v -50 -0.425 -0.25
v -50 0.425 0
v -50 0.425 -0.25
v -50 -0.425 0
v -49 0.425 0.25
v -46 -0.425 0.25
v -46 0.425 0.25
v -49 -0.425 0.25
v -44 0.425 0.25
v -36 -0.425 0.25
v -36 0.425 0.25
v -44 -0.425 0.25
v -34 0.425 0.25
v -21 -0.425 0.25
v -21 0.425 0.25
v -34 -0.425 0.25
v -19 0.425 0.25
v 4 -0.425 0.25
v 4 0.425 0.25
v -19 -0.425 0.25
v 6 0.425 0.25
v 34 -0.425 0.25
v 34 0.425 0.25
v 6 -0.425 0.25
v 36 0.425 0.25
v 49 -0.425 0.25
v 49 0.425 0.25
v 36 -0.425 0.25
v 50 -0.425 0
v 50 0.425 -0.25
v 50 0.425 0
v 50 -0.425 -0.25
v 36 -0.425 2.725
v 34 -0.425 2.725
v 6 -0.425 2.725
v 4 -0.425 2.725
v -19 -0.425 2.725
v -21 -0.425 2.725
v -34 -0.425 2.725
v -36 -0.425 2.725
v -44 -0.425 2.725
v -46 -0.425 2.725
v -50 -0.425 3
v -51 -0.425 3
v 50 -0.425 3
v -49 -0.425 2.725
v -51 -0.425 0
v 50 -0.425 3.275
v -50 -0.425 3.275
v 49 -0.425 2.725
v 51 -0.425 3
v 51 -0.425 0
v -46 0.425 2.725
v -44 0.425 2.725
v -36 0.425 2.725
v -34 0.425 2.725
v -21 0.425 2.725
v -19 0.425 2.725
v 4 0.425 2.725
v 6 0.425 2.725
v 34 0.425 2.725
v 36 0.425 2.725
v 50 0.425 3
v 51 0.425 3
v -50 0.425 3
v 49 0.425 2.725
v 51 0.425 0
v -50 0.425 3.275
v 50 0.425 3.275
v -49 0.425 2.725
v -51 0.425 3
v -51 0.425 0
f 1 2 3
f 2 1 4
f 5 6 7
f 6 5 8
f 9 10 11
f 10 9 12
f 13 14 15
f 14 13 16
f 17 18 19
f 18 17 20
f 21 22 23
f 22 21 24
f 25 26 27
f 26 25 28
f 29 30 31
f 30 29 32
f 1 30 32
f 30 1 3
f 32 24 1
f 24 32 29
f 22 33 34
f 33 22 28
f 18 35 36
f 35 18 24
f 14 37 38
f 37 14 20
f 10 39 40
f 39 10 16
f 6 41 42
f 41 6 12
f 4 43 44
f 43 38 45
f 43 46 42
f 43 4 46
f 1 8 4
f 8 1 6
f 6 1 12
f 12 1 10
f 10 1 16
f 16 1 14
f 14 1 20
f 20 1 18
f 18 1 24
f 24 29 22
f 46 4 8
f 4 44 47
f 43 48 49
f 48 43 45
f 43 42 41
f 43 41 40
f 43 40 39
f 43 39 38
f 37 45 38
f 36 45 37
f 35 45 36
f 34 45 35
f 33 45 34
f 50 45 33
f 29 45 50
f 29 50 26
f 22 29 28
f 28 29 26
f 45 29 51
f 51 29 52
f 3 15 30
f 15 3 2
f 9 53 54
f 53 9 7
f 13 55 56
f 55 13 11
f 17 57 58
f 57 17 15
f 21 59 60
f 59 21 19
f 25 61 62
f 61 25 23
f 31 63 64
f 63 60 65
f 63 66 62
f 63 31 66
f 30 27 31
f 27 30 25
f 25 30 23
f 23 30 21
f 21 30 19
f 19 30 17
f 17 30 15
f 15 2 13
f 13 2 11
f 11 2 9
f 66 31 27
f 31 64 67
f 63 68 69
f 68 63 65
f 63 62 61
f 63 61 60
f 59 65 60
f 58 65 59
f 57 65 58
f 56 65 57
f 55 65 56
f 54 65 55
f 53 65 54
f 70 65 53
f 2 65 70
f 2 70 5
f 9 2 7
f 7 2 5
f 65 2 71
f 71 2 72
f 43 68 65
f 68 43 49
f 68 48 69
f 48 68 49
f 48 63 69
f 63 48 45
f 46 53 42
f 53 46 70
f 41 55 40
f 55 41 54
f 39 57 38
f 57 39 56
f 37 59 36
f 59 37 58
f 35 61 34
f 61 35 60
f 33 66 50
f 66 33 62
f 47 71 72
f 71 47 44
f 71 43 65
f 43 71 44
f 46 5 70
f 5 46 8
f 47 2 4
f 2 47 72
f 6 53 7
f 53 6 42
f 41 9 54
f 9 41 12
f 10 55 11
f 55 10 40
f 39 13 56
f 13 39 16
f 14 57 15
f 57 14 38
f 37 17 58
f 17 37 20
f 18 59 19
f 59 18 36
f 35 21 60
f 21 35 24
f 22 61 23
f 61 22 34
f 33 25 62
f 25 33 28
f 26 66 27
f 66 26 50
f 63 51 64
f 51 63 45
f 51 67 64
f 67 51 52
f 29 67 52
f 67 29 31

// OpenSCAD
// file: primitives.scad
//px - Position X
//rx - Rotation X
//sx - Scale X
//mx - Mirror X


//yCube(szx=5, py=3, rz=30, mx=1, clr="red");
//yCyl(px=7, py=5, rb=3, clr="green");
//szx - SiZe X
module yCube(px=0, py=0, pz=0, rx=0, ry=0, rz=0, sx=1, sy=1, sz=1, mx=0, my=0, mz=0, szx=1, szy=1, szz=1, clr = "grey") {
    mirror([mx,my,mz])
    translate([px, py, pz])
    rotate([rx,ry,rz])
    scale([sx,sy,sz])
    color(clr)
        cube([szx, szy, szz], center=true);    
}//yCube

//rb - Radius Bottom, rt - Radius Top
module yCyl(px=0, py=0, pz=0, rx=0, ry=0, rz=0, sx=1, sy=1, sz=1, mx=0, my=0, mz=0, rb=1, rt=1, szz=1, clr = "grey", fn = ($preview ? 2:8) ) {
    mirror([mx,my,mz])
    translate([(px), (py), (pz-szz/2)])
    rotate([rx,ry,rz])
    scale([sx,sy,sz])
    color(clr)
        cylinder(szz, rb, rt, $fn=fn*((rb>rt)?rb:rt));    
}//yCube
// main file
include<primitives.scad>
//yCyl();
yCube(szx=100, szy=0.85, szz=0.5);
yCube(szx=100, szy=0.85, szz=0.55, pz=3);

yCube(szx=2, szy=0.85, szz=3, px=-50, pz=1.5);
yCube(szx=2, szy=0.85, szz=3, px=-45, pz=1.5);
yCube(szx=2, szy=0.85, szz=3, px=-35, pz=1.5);
yCube(szx=2, szy=0.85, szz=3, px=-20, pz=1.5);
yCube(szx=2, szy=0.85, szz=3, px=5, pz=1.5);
yCube(szx=2, szy=0.85, szz=3, px=35, pz=1.5);
yCube(szx=2, szy=0.85, szz=3, px=50, pz=1.5);
